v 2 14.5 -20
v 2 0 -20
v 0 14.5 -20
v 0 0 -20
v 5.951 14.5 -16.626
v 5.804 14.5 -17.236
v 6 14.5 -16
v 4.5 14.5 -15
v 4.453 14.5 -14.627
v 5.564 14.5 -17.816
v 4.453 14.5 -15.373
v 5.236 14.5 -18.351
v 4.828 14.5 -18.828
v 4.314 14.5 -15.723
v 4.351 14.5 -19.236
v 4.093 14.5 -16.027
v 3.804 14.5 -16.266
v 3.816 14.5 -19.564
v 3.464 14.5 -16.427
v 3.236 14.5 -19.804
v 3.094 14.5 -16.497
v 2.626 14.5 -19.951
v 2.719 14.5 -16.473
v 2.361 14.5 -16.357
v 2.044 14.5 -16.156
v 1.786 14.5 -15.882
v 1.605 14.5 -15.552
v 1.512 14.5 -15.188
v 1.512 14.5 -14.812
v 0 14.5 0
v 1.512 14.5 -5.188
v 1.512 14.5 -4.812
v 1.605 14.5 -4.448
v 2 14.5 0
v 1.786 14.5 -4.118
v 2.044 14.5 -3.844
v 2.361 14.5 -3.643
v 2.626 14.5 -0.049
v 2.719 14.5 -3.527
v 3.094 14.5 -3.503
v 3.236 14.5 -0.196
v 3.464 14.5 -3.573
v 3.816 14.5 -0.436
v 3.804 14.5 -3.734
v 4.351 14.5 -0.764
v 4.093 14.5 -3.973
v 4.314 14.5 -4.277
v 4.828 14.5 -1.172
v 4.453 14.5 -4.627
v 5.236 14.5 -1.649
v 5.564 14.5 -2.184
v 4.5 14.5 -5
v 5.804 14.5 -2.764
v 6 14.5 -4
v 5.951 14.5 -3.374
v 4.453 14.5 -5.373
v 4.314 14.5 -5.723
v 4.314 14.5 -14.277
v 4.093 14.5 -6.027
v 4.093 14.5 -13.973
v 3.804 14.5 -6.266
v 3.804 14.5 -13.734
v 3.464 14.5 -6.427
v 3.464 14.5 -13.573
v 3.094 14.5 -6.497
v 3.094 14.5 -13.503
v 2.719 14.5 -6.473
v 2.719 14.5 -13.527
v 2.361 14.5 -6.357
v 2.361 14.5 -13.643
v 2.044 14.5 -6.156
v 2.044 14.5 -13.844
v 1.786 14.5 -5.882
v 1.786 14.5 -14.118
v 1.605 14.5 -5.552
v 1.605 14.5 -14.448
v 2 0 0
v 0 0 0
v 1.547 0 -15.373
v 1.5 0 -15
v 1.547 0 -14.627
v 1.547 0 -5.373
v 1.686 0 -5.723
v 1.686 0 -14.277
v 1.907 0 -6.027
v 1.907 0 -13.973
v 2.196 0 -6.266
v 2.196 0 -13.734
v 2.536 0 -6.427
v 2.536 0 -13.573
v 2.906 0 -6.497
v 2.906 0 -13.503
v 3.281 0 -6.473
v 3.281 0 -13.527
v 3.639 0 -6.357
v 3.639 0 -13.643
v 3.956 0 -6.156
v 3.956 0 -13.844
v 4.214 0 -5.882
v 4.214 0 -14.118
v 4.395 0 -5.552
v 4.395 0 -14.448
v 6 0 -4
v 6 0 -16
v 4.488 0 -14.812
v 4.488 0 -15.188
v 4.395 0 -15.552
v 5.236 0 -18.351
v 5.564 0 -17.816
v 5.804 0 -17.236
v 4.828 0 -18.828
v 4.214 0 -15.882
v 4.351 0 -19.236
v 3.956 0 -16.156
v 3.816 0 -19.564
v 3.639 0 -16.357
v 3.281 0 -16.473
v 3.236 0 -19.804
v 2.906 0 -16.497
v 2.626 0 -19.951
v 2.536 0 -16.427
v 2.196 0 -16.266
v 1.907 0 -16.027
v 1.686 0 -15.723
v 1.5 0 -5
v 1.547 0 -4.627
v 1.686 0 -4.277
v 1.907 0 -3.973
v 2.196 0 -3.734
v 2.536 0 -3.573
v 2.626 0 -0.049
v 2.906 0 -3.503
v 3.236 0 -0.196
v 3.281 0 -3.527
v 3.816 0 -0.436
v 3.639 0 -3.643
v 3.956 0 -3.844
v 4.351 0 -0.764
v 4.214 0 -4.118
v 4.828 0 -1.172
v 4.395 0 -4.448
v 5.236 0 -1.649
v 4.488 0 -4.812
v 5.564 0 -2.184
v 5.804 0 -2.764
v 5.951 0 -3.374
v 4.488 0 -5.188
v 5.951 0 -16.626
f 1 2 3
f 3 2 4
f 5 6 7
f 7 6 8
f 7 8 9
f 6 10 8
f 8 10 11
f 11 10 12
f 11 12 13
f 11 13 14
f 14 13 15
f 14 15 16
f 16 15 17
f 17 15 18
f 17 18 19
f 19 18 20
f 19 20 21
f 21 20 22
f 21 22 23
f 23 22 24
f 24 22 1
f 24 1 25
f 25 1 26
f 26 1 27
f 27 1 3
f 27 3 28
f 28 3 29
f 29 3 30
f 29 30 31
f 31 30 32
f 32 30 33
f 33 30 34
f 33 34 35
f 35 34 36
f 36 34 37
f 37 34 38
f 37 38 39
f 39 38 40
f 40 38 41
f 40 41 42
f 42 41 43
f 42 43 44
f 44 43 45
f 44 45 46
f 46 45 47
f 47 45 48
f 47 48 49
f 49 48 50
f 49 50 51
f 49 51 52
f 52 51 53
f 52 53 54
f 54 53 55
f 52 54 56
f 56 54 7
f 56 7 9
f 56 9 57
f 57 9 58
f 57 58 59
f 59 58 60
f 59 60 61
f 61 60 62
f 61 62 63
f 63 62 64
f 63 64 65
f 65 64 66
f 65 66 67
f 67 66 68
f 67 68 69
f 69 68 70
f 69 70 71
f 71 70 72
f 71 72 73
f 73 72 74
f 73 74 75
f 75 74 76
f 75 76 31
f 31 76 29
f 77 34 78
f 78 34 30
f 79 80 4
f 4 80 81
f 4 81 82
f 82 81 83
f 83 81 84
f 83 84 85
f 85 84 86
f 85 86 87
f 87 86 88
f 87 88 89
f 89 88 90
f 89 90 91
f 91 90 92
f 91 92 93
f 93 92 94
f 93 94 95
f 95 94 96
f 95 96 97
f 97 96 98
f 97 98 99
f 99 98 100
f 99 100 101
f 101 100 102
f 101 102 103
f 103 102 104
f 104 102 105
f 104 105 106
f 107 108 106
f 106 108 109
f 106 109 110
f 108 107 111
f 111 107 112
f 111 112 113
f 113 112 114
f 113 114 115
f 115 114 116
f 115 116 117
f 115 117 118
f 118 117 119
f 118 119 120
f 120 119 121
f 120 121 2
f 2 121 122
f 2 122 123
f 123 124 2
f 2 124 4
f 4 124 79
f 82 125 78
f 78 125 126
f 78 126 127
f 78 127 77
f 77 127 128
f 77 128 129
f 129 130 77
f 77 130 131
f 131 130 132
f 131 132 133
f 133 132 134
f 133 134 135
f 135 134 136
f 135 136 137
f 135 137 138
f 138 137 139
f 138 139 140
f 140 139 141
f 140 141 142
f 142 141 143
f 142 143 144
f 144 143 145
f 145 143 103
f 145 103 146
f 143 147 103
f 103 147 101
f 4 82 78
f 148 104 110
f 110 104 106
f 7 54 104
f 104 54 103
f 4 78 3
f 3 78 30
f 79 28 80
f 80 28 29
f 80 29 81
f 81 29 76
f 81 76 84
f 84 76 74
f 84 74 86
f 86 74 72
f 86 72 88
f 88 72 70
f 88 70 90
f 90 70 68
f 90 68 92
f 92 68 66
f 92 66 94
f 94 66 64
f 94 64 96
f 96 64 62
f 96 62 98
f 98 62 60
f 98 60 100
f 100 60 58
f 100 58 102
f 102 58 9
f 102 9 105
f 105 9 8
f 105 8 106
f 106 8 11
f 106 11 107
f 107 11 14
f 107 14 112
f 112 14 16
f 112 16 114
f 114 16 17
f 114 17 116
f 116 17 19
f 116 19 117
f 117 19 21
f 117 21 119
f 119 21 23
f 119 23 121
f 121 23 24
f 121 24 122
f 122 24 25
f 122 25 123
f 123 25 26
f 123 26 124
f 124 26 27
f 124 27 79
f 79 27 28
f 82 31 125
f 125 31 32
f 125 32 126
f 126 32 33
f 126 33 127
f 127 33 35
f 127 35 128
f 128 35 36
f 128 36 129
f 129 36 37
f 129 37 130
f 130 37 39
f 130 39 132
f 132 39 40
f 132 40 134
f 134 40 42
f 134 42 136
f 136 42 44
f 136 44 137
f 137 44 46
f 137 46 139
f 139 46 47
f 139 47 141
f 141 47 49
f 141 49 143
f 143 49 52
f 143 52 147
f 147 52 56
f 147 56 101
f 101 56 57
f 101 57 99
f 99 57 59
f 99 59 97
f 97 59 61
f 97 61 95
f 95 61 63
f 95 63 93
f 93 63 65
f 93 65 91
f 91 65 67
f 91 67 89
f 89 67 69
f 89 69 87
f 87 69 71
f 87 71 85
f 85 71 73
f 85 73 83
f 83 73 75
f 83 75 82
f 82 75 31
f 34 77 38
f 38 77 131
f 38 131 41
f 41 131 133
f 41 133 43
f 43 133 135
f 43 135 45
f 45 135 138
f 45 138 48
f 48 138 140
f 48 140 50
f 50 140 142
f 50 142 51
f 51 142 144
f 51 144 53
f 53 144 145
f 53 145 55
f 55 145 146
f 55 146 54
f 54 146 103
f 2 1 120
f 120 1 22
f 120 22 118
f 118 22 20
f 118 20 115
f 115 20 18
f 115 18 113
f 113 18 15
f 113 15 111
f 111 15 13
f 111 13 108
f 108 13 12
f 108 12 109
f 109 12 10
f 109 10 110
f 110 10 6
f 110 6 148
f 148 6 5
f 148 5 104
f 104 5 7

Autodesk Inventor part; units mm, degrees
ref_plane "YZ Plane" through (0, 0, 0) normal (1, 0, 0) x (0, 1, 0)
ref_plane "XZ Plane" through (0, 0, 0) normal (0, 1, 0) x (-1, 0, 0)
ref_plane "XY Plane" through (0, 0, 0) normal (0, 0, 1) x (1, 0, 0)
sketch "Sketch1" plane through (0, 0, 0) normal (1, 0, 0) x (0, 1, 0)
  line L0 (0, 0) -> (14.5, 0)
  line L1 (14.5, 0) -> (14.5, -20)
  line L2 (14.5, -20) -> (0, -20)
  line L3 (0, -20) -> (0, 0)
  dimension "d0" = 14.5
  dimension "d1" = 20
extrude "Extrusion1" add sketch "Sketch1" along normal blind 6
sketch "Sketch2" plane through (0, 14.5, 0) normal (0, 1, 0) x (1, 0, 0)
  line L0 (0, 0) -> (3, 0)
  line L1 (3, 0) -> (3, 5)
  line L2 (3, 5) -> (0, 5)
  line L3 (0, 5) -> (0, 0)
  line L4 (0, 20) -> (6, 20) projected
  line L5 (6, 20) -> (3, 20)
  line L6 (3, 20) -> (3, 15)
  line L7 (3, 15) -> (6, 15)
  line L8 (6, 15) -> (6, 20)
  circle A0 centre (3, 5) radius 1.5
  circle A1 centre (3, 15) radius 1.5
  dimension "d4" = 3
  dimension "d5" = 5
  dimension "d6" = 3
  dimension "d7" = 5
  dimension "d8" = 3
  dimension "d9" = 3
extrude "Extrusion2" cut sketch "Sketch2" against normal blind 164 contours A0 L2 L1 | L1 L2 A0 | A1 L7 L6 | L6 L7 A1
fillet "Fillet1" radius 4 2 edges at (6, 7.25, 0) (6, 7.25, -20)
properties part number "shoe_lace"
